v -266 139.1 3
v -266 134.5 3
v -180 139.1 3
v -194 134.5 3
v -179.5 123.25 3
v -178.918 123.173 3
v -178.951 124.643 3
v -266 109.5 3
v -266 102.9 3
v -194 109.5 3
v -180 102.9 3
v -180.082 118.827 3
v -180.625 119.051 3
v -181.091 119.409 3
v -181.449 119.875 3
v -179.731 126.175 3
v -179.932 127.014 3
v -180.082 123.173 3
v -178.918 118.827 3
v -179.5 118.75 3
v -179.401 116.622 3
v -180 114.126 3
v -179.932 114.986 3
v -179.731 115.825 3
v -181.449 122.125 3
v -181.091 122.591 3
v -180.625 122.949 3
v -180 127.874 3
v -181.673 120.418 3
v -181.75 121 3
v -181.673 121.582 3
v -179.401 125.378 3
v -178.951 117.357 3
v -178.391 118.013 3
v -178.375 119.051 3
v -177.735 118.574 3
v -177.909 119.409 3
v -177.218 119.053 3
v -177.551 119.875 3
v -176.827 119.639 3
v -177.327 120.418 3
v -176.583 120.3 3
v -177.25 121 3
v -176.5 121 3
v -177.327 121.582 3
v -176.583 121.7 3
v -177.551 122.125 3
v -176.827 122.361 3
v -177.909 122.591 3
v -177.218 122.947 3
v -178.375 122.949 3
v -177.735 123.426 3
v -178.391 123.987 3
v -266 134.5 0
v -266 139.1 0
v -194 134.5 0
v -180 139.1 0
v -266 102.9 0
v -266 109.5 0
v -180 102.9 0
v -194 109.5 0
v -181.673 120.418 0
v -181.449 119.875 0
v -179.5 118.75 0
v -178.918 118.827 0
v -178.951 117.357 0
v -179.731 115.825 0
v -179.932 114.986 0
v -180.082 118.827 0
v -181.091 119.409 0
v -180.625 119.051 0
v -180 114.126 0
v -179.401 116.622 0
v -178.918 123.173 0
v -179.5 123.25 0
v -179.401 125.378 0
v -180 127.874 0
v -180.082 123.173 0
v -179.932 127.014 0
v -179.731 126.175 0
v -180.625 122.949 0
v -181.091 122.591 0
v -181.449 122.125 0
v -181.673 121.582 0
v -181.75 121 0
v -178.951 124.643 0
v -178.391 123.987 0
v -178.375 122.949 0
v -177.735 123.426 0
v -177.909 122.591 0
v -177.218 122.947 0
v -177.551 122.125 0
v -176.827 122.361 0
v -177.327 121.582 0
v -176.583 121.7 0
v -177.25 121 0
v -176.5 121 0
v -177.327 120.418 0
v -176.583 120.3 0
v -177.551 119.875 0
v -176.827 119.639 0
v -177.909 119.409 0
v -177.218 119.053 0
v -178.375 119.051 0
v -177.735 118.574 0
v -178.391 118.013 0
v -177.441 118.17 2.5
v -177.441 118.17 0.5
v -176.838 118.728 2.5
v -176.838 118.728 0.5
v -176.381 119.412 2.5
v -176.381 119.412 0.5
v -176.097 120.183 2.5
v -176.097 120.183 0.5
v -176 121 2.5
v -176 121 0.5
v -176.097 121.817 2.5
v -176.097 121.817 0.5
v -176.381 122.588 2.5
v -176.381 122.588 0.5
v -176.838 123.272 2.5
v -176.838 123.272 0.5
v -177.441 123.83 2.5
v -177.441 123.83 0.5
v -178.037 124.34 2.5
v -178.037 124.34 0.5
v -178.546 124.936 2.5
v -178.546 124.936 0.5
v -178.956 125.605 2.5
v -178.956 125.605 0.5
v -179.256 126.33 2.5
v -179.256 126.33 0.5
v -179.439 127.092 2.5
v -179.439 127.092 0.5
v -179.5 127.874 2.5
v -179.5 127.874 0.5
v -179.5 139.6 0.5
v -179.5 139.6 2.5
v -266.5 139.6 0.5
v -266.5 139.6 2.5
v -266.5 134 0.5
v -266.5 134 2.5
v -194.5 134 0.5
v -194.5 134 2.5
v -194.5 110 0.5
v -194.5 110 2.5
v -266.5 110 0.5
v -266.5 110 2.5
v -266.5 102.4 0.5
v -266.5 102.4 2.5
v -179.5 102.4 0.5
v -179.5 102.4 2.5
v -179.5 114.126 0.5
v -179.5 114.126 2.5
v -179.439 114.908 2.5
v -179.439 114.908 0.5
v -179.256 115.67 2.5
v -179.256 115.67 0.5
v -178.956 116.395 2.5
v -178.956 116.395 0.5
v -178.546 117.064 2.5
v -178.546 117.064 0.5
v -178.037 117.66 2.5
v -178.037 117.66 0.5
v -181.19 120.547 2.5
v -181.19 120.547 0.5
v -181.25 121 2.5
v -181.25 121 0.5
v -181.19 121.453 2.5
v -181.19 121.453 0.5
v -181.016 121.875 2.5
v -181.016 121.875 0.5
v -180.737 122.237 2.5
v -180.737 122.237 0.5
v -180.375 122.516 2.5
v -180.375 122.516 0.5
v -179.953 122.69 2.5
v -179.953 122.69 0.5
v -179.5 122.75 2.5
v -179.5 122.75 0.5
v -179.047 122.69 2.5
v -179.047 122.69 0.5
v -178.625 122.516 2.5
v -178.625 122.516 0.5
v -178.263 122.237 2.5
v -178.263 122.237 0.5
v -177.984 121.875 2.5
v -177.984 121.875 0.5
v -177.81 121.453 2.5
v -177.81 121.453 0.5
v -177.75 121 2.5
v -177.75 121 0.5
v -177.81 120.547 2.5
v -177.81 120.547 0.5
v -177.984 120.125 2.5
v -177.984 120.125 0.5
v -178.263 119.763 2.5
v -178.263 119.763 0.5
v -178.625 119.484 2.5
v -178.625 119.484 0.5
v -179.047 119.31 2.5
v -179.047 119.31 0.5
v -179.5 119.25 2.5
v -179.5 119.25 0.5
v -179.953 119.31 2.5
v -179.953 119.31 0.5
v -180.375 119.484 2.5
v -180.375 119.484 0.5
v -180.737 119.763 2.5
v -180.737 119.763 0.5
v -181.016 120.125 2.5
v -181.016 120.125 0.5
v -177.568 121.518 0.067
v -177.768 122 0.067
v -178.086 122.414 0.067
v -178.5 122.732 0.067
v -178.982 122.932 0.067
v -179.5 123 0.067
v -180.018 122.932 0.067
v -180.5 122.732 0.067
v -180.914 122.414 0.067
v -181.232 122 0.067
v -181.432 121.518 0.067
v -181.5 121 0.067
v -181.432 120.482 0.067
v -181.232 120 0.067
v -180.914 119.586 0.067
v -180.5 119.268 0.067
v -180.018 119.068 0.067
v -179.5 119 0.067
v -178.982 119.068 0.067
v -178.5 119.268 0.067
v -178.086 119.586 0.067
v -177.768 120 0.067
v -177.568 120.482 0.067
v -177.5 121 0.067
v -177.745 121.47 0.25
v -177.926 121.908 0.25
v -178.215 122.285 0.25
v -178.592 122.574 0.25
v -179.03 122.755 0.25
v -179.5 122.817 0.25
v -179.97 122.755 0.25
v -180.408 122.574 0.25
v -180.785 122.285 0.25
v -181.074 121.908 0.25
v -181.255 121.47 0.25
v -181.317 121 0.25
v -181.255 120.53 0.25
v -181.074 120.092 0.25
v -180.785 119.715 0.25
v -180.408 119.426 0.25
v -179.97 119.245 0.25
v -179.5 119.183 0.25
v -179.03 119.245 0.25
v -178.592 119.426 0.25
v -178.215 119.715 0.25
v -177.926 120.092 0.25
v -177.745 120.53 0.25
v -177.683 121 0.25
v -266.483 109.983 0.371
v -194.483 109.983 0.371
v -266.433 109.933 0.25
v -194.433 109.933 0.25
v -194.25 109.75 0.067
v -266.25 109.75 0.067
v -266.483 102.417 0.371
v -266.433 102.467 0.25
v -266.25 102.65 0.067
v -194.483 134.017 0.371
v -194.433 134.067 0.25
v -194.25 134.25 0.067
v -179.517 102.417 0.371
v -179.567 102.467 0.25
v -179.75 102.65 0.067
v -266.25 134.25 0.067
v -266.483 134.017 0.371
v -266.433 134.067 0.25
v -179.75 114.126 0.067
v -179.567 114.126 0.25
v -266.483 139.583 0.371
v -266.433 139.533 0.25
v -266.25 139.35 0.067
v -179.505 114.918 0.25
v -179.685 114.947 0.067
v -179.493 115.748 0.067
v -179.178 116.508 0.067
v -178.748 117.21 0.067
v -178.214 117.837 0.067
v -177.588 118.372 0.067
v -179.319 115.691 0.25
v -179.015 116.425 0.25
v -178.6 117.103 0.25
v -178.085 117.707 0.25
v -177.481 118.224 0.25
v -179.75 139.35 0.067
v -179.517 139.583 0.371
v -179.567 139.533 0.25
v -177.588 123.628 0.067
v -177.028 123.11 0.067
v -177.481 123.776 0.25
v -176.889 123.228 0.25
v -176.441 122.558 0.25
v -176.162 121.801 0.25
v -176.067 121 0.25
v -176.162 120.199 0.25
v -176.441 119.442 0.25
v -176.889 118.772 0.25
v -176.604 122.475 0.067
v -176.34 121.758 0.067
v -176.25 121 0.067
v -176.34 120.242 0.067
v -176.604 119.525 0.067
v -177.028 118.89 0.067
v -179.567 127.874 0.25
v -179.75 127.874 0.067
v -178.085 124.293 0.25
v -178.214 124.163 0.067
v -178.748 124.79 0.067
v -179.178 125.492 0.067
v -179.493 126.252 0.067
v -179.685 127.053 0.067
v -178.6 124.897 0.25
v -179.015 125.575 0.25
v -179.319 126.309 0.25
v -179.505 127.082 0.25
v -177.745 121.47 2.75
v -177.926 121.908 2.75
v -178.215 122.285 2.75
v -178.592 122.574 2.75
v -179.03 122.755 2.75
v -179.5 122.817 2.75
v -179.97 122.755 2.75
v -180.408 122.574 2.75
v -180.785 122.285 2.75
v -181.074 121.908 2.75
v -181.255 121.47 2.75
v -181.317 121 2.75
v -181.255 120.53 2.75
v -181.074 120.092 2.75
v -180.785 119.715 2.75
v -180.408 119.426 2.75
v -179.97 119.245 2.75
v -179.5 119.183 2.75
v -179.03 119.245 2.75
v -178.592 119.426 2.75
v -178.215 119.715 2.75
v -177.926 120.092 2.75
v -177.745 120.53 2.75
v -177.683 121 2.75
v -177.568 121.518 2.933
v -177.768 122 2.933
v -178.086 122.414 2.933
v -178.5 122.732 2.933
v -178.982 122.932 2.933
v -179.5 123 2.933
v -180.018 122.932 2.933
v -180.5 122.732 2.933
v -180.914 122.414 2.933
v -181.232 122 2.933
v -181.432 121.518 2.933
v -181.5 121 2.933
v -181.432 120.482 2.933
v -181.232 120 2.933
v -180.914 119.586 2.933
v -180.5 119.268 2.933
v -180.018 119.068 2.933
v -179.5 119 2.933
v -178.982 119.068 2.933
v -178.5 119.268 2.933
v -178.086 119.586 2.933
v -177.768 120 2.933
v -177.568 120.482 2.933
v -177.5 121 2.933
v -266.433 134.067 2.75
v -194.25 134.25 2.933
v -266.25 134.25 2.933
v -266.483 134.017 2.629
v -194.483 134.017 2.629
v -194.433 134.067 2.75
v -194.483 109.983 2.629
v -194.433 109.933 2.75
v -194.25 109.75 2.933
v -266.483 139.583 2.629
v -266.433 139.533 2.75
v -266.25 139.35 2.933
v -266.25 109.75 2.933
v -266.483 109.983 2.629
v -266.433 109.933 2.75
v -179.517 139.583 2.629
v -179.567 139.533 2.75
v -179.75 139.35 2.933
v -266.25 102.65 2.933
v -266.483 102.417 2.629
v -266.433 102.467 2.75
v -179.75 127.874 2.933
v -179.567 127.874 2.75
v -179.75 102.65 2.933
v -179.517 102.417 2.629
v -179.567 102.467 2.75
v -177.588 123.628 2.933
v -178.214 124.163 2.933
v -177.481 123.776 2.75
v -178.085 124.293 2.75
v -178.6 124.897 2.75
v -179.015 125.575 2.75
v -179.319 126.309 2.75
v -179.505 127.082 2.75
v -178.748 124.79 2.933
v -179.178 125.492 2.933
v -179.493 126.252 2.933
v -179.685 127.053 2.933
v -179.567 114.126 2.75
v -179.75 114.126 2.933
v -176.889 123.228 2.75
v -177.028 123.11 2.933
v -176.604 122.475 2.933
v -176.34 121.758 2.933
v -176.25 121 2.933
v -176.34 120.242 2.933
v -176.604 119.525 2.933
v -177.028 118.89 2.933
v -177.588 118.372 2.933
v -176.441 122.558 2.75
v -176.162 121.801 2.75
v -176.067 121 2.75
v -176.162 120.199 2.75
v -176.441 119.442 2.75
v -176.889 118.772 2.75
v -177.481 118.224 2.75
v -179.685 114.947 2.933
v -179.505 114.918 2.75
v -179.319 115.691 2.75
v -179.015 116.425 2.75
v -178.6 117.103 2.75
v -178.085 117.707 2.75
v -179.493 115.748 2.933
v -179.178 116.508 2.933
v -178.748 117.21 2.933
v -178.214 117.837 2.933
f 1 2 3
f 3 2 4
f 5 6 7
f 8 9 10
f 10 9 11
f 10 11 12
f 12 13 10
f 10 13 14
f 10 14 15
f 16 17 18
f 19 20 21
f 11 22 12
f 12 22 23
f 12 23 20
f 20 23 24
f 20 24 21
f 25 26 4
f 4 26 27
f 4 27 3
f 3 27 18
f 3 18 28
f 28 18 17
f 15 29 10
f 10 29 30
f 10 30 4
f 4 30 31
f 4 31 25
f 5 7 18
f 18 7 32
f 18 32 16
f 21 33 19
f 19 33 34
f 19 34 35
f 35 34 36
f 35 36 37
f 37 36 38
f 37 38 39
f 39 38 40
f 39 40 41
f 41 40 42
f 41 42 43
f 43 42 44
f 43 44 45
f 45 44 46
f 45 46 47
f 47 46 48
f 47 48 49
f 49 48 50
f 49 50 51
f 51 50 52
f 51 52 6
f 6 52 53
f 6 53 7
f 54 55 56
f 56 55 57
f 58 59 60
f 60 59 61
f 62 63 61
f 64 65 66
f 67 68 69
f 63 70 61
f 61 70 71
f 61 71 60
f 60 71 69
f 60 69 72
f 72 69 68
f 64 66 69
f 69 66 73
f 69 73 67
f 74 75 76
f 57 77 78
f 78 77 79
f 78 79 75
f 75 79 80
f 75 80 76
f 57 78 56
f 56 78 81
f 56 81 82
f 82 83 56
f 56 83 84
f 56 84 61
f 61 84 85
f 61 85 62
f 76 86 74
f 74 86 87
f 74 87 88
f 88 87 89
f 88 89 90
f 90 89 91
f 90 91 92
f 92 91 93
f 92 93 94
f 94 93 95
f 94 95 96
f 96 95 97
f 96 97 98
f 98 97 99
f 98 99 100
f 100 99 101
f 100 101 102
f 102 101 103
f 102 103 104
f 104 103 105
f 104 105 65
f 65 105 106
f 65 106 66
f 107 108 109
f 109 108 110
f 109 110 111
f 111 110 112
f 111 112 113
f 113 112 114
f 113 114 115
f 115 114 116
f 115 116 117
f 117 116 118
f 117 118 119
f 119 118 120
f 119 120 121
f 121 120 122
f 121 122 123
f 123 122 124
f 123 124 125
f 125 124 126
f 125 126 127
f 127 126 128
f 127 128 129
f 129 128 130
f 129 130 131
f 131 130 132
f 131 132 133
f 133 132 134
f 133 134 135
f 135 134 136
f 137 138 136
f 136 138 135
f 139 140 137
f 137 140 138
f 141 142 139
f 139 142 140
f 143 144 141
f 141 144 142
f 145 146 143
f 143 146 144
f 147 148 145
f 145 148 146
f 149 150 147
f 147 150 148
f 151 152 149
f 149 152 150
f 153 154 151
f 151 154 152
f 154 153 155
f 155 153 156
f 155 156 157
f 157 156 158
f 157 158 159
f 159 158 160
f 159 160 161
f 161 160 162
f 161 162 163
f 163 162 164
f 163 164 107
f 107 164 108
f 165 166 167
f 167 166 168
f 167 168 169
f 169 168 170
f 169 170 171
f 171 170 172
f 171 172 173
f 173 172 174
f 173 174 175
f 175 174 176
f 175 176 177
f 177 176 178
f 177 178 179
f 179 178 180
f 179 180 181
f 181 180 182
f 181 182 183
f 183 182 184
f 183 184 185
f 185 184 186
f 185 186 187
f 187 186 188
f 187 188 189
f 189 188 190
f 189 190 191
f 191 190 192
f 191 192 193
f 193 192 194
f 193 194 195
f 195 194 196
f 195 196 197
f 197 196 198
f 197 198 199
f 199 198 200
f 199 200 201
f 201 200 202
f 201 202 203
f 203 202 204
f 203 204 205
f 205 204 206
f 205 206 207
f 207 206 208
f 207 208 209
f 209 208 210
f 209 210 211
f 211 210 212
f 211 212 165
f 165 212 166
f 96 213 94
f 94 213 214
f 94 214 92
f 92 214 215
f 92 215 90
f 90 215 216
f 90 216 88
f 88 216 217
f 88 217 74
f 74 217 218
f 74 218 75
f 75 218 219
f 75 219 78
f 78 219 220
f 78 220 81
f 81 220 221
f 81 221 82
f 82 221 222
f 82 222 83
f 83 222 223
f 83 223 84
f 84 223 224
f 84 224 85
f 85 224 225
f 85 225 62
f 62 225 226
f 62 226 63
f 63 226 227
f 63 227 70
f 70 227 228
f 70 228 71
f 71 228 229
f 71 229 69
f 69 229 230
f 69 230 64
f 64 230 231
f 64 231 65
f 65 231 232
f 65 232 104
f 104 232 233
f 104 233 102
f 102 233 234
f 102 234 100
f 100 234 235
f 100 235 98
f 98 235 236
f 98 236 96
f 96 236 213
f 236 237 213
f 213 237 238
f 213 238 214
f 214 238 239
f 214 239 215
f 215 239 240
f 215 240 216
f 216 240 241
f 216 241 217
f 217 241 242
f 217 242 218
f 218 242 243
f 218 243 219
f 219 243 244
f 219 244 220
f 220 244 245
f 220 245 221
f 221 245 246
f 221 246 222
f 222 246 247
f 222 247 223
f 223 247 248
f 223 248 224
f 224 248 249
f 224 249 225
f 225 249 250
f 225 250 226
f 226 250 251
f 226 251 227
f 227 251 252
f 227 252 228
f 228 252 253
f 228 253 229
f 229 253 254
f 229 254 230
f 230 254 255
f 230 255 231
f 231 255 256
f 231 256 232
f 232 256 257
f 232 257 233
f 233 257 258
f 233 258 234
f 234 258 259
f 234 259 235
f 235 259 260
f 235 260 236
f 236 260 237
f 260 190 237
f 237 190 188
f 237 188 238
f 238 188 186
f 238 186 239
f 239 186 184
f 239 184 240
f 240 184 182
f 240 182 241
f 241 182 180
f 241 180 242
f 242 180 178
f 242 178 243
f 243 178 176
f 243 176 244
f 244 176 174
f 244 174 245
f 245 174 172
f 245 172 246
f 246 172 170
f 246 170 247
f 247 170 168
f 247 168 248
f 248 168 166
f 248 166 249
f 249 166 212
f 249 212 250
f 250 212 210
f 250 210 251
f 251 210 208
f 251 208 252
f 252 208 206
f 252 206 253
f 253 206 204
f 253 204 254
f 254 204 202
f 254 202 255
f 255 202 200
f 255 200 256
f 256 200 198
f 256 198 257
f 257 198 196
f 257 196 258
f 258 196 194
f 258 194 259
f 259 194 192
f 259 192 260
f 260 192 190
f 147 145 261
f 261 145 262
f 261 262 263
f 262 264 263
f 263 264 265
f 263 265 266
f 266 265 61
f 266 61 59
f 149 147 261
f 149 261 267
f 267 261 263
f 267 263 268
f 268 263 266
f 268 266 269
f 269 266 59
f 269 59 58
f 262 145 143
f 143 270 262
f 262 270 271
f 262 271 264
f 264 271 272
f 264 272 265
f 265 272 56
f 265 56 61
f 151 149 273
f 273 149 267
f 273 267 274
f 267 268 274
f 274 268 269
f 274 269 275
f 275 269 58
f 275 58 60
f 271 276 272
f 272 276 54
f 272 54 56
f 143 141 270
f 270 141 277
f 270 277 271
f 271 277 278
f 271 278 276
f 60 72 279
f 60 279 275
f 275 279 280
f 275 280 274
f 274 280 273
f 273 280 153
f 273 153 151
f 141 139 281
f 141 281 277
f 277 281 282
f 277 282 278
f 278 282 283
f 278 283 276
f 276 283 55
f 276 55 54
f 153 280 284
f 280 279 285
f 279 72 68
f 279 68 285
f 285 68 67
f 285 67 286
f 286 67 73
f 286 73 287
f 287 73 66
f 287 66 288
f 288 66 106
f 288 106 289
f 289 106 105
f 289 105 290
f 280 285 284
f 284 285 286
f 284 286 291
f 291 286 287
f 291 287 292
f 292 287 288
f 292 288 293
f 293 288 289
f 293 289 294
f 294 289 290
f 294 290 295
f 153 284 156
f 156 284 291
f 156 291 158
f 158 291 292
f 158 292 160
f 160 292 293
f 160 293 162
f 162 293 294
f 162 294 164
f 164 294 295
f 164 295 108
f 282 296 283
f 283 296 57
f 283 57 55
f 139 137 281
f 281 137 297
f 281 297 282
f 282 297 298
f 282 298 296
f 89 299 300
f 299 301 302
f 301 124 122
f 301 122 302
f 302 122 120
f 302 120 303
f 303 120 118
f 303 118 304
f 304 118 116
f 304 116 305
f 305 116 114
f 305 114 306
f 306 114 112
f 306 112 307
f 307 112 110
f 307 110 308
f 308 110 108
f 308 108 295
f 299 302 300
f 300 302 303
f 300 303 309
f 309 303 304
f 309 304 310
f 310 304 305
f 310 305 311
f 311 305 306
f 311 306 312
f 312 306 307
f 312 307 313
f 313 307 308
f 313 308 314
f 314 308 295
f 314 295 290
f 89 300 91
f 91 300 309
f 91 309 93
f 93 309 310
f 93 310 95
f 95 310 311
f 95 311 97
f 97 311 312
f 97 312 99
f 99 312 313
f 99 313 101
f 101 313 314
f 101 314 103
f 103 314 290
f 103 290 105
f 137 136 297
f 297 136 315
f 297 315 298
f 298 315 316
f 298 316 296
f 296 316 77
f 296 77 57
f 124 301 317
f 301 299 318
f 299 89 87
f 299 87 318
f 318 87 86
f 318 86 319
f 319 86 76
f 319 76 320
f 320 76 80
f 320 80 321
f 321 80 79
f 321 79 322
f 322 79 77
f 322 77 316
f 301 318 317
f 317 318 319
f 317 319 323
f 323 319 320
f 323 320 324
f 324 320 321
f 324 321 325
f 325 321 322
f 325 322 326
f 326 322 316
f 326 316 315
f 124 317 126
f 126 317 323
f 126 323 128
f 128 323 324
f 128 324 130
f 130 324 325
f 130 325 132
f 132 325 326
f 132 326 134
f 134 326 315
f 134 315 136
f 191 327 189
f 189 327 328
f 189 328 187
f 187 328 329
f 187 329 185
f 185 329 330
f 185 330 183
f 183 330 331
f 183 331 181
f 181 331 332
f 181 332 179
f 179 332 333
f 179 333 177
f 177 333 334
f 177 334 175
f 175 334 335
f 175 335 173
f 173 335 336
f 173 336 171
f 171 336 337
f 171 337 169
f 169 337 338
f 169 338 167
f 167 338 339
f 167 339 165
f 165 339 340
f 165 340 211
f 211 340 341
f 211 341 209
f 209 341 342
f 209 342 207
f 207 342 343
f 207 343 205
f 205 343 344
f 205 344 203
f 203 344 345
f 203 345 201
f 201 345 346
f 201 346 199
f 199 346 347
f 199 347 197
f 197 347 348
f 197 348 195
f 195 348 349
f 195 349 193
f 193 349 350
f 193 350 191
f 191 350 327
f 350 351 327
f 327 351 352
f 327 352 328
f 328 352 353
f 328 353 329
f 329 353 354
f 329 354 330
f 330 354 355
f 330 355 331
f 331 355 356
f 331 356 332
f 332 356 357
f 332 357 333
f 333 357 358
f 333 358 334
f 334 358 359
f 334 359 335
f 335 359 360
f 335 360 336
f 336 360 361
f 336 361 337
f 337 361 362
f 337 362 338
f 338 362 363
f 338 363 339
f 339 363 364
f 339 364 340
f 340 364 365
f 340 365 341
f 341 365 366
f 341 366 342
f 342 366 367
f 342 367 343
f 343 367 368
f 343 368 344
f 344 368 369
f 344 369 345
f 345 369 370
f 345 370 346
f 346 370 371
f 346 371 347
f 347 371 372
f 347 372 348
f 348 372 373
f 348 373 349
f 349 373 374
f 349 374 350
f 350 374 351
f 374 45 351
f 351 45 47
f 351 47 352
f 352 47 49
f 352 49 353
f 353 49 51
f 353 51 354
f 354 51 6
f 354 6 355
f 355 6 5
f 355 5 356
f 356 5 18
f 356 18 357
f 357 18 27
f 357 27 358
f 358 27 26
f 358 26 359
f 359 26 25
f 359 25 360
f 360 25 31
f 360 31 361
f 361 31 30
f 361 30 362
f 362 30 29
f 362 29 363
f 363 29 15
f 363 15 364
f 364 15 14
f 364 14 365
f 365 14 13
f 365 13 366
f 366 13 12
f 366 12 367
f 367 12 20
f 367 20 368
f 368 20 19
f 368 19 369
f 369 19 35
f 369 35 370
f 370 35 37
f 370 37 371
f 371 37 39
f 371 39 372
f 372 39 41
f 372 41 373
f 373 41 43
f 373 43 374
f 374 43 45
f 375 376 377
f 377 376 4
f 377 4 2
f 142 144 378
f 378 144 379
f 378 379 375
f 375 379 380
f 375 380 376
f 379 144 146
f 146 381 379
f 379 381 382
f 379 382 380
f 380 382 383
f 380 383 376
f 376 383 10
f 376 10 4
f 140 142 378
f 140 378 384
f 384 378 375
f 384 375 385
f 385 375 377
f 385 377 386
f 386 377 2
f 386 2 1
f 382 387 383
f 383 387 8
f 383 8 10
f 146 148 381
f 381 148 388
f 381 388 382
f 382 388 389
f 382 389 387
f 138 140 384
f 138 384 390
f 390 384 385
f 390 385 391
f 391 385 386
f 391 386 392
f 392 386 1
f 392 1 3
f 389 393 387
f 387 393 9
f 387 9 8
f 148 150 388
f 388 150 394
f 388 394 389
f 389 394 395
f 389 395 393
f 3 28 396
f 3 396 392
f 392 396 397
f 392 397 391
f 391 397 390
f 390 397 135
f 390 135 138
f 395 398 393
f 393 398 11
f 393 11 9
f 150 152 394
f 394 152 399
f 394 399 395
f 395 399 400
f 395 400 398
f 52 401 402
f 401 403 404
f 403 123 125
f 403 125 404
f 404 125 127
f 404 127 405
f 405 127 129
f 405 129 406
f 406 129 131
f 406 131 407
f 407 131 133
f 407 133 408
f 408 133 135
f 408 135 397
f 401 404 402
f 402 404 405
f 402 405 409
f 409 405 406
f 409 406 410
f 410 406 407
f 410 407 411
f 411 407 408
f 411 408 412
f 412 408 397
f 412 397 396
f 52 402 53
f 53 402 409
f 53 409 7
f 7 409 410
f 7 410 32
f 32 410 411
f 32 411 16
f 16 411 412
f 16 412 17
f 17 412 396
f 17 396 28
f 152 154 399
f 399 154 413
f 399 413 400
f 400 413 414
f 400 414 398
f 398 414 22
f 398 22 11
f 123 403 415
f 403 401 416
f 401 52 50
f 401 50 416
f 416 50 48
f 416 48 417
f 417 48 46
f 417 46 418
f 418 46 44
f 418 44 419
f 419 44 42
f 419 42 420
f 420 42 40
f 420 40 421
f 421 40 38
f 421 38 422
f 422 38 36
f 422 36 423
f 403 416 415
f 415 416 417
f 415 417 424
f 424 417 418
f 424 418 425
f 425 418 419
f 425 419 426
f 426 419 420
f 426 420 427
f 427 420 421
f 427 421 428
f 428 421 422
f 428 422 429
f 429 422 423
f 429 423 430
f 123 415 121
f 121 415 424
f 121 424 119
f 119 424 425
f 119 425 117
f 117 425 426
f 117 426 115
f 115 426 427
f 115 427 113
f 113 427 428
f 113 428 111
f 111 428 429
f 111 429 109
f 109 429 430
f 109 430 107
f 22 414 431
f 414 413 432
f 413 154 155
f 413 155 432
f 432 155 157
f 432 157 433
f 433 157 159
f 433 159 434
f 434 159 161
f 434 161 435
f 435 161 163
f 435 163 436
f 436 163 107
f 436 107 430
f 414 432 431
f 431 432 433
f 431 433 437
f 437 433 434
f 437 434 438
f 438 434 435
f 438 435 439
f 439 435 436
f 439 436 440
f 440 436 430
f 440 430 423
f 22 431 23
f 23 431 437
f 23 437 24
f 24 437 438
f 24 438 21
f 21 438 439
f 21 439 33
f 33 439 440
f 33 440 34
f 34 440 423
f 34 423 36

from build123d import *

# Parameters (mm, degrees)
SKETCH1_R           = 1.75
BOSS_EXTRUDE1_DEPTH = 3
FILLET1_R           = 0.5


with BuildPart() as part:
    # Sketch1 → Boss-Extrude1 (new body)
    with BuildSketch(Plane.XY):
        with BuildLine():
            Line((-266.5, 139.6), (-179.5, 139.6))
            Line((-179.5, 139.6), (-179.5, 127.873863542))
            ThreePointArc((-179.5, 127.873863542), (-178.955663943, 125.60515051), (-177.441176471, 123.8304144))
            ThreePointArc((-177.441176471, 123.8304144), (-176, 121), (-177.441176471, 118.1695856))
            ThreePointArc((-177.441176471, 118.1695856), (-178.955663943, 116.39484949), (-179.5, 114.126136458))
            Line((-179.5, 114.126136458), (-179.5, 102.4))
            Line((-179.5, 102.4), (-266.5, 102.4))
            Line((-266.5, 102.4), (-266.5, 110))
            Line((-266.5, 110), (-194.5, 110))
            Line((-194.5, 110), (-194.5, 134))
            Line((-194.5, 134), (-266.5, 134))
            Line((-266.5, 134), (-266.5, 139.6))
        make_face()
        with Locations((-179.5, 121)):
            Circle(SKETCH1_R, mode=Mode.SUBTRACT)
    extrude(amount=BOSS_EXTRUDE1_DEPTH)

    # Fillet1
    fillet1_edges = [part.edges().sort_by_distance(p)[0] for p in [
        (-178.955663943, 116.39484949, 0),
        (-179.5, 108.263068229, 0),
        (-179.5, 133.736931771, 3),
        (-223, 102.4, 0),
        (-266.5, 106.2, 0),
        (-230.5, 110, 0),
        (-194.5, 122, 0),
        (-230.5, 134, 0),
        (-266.5, 136.8, 0),
        (-223, 139.6, 0),
        (-179.5, 133.736931771, 0),
        (-178.955663943, 125.60515051, 0),
        (-176, 121, 0),
        (-223, 139.6, 3),
        (-266.5, 136.8, 3),
        (-230.5, 134, 3),
        (-194.5, 122, 3),
        (-181.25, 121, 0),
        (-181.25, 121, 3),
        (-230.5, 110, 3),
        (-266.5, 106.2, 3),
        (-223, 102.4, 3),
        (-179.5, 108.263068229, 3),
        (-178.955663943, 116.39484949, 3),
        (-176, 121, 3),
        (-178.955663943, 125.60515051, 3),
    ]]
    fillet(fillet1_edges, radius=FILLET1_R)


solid = part.part
